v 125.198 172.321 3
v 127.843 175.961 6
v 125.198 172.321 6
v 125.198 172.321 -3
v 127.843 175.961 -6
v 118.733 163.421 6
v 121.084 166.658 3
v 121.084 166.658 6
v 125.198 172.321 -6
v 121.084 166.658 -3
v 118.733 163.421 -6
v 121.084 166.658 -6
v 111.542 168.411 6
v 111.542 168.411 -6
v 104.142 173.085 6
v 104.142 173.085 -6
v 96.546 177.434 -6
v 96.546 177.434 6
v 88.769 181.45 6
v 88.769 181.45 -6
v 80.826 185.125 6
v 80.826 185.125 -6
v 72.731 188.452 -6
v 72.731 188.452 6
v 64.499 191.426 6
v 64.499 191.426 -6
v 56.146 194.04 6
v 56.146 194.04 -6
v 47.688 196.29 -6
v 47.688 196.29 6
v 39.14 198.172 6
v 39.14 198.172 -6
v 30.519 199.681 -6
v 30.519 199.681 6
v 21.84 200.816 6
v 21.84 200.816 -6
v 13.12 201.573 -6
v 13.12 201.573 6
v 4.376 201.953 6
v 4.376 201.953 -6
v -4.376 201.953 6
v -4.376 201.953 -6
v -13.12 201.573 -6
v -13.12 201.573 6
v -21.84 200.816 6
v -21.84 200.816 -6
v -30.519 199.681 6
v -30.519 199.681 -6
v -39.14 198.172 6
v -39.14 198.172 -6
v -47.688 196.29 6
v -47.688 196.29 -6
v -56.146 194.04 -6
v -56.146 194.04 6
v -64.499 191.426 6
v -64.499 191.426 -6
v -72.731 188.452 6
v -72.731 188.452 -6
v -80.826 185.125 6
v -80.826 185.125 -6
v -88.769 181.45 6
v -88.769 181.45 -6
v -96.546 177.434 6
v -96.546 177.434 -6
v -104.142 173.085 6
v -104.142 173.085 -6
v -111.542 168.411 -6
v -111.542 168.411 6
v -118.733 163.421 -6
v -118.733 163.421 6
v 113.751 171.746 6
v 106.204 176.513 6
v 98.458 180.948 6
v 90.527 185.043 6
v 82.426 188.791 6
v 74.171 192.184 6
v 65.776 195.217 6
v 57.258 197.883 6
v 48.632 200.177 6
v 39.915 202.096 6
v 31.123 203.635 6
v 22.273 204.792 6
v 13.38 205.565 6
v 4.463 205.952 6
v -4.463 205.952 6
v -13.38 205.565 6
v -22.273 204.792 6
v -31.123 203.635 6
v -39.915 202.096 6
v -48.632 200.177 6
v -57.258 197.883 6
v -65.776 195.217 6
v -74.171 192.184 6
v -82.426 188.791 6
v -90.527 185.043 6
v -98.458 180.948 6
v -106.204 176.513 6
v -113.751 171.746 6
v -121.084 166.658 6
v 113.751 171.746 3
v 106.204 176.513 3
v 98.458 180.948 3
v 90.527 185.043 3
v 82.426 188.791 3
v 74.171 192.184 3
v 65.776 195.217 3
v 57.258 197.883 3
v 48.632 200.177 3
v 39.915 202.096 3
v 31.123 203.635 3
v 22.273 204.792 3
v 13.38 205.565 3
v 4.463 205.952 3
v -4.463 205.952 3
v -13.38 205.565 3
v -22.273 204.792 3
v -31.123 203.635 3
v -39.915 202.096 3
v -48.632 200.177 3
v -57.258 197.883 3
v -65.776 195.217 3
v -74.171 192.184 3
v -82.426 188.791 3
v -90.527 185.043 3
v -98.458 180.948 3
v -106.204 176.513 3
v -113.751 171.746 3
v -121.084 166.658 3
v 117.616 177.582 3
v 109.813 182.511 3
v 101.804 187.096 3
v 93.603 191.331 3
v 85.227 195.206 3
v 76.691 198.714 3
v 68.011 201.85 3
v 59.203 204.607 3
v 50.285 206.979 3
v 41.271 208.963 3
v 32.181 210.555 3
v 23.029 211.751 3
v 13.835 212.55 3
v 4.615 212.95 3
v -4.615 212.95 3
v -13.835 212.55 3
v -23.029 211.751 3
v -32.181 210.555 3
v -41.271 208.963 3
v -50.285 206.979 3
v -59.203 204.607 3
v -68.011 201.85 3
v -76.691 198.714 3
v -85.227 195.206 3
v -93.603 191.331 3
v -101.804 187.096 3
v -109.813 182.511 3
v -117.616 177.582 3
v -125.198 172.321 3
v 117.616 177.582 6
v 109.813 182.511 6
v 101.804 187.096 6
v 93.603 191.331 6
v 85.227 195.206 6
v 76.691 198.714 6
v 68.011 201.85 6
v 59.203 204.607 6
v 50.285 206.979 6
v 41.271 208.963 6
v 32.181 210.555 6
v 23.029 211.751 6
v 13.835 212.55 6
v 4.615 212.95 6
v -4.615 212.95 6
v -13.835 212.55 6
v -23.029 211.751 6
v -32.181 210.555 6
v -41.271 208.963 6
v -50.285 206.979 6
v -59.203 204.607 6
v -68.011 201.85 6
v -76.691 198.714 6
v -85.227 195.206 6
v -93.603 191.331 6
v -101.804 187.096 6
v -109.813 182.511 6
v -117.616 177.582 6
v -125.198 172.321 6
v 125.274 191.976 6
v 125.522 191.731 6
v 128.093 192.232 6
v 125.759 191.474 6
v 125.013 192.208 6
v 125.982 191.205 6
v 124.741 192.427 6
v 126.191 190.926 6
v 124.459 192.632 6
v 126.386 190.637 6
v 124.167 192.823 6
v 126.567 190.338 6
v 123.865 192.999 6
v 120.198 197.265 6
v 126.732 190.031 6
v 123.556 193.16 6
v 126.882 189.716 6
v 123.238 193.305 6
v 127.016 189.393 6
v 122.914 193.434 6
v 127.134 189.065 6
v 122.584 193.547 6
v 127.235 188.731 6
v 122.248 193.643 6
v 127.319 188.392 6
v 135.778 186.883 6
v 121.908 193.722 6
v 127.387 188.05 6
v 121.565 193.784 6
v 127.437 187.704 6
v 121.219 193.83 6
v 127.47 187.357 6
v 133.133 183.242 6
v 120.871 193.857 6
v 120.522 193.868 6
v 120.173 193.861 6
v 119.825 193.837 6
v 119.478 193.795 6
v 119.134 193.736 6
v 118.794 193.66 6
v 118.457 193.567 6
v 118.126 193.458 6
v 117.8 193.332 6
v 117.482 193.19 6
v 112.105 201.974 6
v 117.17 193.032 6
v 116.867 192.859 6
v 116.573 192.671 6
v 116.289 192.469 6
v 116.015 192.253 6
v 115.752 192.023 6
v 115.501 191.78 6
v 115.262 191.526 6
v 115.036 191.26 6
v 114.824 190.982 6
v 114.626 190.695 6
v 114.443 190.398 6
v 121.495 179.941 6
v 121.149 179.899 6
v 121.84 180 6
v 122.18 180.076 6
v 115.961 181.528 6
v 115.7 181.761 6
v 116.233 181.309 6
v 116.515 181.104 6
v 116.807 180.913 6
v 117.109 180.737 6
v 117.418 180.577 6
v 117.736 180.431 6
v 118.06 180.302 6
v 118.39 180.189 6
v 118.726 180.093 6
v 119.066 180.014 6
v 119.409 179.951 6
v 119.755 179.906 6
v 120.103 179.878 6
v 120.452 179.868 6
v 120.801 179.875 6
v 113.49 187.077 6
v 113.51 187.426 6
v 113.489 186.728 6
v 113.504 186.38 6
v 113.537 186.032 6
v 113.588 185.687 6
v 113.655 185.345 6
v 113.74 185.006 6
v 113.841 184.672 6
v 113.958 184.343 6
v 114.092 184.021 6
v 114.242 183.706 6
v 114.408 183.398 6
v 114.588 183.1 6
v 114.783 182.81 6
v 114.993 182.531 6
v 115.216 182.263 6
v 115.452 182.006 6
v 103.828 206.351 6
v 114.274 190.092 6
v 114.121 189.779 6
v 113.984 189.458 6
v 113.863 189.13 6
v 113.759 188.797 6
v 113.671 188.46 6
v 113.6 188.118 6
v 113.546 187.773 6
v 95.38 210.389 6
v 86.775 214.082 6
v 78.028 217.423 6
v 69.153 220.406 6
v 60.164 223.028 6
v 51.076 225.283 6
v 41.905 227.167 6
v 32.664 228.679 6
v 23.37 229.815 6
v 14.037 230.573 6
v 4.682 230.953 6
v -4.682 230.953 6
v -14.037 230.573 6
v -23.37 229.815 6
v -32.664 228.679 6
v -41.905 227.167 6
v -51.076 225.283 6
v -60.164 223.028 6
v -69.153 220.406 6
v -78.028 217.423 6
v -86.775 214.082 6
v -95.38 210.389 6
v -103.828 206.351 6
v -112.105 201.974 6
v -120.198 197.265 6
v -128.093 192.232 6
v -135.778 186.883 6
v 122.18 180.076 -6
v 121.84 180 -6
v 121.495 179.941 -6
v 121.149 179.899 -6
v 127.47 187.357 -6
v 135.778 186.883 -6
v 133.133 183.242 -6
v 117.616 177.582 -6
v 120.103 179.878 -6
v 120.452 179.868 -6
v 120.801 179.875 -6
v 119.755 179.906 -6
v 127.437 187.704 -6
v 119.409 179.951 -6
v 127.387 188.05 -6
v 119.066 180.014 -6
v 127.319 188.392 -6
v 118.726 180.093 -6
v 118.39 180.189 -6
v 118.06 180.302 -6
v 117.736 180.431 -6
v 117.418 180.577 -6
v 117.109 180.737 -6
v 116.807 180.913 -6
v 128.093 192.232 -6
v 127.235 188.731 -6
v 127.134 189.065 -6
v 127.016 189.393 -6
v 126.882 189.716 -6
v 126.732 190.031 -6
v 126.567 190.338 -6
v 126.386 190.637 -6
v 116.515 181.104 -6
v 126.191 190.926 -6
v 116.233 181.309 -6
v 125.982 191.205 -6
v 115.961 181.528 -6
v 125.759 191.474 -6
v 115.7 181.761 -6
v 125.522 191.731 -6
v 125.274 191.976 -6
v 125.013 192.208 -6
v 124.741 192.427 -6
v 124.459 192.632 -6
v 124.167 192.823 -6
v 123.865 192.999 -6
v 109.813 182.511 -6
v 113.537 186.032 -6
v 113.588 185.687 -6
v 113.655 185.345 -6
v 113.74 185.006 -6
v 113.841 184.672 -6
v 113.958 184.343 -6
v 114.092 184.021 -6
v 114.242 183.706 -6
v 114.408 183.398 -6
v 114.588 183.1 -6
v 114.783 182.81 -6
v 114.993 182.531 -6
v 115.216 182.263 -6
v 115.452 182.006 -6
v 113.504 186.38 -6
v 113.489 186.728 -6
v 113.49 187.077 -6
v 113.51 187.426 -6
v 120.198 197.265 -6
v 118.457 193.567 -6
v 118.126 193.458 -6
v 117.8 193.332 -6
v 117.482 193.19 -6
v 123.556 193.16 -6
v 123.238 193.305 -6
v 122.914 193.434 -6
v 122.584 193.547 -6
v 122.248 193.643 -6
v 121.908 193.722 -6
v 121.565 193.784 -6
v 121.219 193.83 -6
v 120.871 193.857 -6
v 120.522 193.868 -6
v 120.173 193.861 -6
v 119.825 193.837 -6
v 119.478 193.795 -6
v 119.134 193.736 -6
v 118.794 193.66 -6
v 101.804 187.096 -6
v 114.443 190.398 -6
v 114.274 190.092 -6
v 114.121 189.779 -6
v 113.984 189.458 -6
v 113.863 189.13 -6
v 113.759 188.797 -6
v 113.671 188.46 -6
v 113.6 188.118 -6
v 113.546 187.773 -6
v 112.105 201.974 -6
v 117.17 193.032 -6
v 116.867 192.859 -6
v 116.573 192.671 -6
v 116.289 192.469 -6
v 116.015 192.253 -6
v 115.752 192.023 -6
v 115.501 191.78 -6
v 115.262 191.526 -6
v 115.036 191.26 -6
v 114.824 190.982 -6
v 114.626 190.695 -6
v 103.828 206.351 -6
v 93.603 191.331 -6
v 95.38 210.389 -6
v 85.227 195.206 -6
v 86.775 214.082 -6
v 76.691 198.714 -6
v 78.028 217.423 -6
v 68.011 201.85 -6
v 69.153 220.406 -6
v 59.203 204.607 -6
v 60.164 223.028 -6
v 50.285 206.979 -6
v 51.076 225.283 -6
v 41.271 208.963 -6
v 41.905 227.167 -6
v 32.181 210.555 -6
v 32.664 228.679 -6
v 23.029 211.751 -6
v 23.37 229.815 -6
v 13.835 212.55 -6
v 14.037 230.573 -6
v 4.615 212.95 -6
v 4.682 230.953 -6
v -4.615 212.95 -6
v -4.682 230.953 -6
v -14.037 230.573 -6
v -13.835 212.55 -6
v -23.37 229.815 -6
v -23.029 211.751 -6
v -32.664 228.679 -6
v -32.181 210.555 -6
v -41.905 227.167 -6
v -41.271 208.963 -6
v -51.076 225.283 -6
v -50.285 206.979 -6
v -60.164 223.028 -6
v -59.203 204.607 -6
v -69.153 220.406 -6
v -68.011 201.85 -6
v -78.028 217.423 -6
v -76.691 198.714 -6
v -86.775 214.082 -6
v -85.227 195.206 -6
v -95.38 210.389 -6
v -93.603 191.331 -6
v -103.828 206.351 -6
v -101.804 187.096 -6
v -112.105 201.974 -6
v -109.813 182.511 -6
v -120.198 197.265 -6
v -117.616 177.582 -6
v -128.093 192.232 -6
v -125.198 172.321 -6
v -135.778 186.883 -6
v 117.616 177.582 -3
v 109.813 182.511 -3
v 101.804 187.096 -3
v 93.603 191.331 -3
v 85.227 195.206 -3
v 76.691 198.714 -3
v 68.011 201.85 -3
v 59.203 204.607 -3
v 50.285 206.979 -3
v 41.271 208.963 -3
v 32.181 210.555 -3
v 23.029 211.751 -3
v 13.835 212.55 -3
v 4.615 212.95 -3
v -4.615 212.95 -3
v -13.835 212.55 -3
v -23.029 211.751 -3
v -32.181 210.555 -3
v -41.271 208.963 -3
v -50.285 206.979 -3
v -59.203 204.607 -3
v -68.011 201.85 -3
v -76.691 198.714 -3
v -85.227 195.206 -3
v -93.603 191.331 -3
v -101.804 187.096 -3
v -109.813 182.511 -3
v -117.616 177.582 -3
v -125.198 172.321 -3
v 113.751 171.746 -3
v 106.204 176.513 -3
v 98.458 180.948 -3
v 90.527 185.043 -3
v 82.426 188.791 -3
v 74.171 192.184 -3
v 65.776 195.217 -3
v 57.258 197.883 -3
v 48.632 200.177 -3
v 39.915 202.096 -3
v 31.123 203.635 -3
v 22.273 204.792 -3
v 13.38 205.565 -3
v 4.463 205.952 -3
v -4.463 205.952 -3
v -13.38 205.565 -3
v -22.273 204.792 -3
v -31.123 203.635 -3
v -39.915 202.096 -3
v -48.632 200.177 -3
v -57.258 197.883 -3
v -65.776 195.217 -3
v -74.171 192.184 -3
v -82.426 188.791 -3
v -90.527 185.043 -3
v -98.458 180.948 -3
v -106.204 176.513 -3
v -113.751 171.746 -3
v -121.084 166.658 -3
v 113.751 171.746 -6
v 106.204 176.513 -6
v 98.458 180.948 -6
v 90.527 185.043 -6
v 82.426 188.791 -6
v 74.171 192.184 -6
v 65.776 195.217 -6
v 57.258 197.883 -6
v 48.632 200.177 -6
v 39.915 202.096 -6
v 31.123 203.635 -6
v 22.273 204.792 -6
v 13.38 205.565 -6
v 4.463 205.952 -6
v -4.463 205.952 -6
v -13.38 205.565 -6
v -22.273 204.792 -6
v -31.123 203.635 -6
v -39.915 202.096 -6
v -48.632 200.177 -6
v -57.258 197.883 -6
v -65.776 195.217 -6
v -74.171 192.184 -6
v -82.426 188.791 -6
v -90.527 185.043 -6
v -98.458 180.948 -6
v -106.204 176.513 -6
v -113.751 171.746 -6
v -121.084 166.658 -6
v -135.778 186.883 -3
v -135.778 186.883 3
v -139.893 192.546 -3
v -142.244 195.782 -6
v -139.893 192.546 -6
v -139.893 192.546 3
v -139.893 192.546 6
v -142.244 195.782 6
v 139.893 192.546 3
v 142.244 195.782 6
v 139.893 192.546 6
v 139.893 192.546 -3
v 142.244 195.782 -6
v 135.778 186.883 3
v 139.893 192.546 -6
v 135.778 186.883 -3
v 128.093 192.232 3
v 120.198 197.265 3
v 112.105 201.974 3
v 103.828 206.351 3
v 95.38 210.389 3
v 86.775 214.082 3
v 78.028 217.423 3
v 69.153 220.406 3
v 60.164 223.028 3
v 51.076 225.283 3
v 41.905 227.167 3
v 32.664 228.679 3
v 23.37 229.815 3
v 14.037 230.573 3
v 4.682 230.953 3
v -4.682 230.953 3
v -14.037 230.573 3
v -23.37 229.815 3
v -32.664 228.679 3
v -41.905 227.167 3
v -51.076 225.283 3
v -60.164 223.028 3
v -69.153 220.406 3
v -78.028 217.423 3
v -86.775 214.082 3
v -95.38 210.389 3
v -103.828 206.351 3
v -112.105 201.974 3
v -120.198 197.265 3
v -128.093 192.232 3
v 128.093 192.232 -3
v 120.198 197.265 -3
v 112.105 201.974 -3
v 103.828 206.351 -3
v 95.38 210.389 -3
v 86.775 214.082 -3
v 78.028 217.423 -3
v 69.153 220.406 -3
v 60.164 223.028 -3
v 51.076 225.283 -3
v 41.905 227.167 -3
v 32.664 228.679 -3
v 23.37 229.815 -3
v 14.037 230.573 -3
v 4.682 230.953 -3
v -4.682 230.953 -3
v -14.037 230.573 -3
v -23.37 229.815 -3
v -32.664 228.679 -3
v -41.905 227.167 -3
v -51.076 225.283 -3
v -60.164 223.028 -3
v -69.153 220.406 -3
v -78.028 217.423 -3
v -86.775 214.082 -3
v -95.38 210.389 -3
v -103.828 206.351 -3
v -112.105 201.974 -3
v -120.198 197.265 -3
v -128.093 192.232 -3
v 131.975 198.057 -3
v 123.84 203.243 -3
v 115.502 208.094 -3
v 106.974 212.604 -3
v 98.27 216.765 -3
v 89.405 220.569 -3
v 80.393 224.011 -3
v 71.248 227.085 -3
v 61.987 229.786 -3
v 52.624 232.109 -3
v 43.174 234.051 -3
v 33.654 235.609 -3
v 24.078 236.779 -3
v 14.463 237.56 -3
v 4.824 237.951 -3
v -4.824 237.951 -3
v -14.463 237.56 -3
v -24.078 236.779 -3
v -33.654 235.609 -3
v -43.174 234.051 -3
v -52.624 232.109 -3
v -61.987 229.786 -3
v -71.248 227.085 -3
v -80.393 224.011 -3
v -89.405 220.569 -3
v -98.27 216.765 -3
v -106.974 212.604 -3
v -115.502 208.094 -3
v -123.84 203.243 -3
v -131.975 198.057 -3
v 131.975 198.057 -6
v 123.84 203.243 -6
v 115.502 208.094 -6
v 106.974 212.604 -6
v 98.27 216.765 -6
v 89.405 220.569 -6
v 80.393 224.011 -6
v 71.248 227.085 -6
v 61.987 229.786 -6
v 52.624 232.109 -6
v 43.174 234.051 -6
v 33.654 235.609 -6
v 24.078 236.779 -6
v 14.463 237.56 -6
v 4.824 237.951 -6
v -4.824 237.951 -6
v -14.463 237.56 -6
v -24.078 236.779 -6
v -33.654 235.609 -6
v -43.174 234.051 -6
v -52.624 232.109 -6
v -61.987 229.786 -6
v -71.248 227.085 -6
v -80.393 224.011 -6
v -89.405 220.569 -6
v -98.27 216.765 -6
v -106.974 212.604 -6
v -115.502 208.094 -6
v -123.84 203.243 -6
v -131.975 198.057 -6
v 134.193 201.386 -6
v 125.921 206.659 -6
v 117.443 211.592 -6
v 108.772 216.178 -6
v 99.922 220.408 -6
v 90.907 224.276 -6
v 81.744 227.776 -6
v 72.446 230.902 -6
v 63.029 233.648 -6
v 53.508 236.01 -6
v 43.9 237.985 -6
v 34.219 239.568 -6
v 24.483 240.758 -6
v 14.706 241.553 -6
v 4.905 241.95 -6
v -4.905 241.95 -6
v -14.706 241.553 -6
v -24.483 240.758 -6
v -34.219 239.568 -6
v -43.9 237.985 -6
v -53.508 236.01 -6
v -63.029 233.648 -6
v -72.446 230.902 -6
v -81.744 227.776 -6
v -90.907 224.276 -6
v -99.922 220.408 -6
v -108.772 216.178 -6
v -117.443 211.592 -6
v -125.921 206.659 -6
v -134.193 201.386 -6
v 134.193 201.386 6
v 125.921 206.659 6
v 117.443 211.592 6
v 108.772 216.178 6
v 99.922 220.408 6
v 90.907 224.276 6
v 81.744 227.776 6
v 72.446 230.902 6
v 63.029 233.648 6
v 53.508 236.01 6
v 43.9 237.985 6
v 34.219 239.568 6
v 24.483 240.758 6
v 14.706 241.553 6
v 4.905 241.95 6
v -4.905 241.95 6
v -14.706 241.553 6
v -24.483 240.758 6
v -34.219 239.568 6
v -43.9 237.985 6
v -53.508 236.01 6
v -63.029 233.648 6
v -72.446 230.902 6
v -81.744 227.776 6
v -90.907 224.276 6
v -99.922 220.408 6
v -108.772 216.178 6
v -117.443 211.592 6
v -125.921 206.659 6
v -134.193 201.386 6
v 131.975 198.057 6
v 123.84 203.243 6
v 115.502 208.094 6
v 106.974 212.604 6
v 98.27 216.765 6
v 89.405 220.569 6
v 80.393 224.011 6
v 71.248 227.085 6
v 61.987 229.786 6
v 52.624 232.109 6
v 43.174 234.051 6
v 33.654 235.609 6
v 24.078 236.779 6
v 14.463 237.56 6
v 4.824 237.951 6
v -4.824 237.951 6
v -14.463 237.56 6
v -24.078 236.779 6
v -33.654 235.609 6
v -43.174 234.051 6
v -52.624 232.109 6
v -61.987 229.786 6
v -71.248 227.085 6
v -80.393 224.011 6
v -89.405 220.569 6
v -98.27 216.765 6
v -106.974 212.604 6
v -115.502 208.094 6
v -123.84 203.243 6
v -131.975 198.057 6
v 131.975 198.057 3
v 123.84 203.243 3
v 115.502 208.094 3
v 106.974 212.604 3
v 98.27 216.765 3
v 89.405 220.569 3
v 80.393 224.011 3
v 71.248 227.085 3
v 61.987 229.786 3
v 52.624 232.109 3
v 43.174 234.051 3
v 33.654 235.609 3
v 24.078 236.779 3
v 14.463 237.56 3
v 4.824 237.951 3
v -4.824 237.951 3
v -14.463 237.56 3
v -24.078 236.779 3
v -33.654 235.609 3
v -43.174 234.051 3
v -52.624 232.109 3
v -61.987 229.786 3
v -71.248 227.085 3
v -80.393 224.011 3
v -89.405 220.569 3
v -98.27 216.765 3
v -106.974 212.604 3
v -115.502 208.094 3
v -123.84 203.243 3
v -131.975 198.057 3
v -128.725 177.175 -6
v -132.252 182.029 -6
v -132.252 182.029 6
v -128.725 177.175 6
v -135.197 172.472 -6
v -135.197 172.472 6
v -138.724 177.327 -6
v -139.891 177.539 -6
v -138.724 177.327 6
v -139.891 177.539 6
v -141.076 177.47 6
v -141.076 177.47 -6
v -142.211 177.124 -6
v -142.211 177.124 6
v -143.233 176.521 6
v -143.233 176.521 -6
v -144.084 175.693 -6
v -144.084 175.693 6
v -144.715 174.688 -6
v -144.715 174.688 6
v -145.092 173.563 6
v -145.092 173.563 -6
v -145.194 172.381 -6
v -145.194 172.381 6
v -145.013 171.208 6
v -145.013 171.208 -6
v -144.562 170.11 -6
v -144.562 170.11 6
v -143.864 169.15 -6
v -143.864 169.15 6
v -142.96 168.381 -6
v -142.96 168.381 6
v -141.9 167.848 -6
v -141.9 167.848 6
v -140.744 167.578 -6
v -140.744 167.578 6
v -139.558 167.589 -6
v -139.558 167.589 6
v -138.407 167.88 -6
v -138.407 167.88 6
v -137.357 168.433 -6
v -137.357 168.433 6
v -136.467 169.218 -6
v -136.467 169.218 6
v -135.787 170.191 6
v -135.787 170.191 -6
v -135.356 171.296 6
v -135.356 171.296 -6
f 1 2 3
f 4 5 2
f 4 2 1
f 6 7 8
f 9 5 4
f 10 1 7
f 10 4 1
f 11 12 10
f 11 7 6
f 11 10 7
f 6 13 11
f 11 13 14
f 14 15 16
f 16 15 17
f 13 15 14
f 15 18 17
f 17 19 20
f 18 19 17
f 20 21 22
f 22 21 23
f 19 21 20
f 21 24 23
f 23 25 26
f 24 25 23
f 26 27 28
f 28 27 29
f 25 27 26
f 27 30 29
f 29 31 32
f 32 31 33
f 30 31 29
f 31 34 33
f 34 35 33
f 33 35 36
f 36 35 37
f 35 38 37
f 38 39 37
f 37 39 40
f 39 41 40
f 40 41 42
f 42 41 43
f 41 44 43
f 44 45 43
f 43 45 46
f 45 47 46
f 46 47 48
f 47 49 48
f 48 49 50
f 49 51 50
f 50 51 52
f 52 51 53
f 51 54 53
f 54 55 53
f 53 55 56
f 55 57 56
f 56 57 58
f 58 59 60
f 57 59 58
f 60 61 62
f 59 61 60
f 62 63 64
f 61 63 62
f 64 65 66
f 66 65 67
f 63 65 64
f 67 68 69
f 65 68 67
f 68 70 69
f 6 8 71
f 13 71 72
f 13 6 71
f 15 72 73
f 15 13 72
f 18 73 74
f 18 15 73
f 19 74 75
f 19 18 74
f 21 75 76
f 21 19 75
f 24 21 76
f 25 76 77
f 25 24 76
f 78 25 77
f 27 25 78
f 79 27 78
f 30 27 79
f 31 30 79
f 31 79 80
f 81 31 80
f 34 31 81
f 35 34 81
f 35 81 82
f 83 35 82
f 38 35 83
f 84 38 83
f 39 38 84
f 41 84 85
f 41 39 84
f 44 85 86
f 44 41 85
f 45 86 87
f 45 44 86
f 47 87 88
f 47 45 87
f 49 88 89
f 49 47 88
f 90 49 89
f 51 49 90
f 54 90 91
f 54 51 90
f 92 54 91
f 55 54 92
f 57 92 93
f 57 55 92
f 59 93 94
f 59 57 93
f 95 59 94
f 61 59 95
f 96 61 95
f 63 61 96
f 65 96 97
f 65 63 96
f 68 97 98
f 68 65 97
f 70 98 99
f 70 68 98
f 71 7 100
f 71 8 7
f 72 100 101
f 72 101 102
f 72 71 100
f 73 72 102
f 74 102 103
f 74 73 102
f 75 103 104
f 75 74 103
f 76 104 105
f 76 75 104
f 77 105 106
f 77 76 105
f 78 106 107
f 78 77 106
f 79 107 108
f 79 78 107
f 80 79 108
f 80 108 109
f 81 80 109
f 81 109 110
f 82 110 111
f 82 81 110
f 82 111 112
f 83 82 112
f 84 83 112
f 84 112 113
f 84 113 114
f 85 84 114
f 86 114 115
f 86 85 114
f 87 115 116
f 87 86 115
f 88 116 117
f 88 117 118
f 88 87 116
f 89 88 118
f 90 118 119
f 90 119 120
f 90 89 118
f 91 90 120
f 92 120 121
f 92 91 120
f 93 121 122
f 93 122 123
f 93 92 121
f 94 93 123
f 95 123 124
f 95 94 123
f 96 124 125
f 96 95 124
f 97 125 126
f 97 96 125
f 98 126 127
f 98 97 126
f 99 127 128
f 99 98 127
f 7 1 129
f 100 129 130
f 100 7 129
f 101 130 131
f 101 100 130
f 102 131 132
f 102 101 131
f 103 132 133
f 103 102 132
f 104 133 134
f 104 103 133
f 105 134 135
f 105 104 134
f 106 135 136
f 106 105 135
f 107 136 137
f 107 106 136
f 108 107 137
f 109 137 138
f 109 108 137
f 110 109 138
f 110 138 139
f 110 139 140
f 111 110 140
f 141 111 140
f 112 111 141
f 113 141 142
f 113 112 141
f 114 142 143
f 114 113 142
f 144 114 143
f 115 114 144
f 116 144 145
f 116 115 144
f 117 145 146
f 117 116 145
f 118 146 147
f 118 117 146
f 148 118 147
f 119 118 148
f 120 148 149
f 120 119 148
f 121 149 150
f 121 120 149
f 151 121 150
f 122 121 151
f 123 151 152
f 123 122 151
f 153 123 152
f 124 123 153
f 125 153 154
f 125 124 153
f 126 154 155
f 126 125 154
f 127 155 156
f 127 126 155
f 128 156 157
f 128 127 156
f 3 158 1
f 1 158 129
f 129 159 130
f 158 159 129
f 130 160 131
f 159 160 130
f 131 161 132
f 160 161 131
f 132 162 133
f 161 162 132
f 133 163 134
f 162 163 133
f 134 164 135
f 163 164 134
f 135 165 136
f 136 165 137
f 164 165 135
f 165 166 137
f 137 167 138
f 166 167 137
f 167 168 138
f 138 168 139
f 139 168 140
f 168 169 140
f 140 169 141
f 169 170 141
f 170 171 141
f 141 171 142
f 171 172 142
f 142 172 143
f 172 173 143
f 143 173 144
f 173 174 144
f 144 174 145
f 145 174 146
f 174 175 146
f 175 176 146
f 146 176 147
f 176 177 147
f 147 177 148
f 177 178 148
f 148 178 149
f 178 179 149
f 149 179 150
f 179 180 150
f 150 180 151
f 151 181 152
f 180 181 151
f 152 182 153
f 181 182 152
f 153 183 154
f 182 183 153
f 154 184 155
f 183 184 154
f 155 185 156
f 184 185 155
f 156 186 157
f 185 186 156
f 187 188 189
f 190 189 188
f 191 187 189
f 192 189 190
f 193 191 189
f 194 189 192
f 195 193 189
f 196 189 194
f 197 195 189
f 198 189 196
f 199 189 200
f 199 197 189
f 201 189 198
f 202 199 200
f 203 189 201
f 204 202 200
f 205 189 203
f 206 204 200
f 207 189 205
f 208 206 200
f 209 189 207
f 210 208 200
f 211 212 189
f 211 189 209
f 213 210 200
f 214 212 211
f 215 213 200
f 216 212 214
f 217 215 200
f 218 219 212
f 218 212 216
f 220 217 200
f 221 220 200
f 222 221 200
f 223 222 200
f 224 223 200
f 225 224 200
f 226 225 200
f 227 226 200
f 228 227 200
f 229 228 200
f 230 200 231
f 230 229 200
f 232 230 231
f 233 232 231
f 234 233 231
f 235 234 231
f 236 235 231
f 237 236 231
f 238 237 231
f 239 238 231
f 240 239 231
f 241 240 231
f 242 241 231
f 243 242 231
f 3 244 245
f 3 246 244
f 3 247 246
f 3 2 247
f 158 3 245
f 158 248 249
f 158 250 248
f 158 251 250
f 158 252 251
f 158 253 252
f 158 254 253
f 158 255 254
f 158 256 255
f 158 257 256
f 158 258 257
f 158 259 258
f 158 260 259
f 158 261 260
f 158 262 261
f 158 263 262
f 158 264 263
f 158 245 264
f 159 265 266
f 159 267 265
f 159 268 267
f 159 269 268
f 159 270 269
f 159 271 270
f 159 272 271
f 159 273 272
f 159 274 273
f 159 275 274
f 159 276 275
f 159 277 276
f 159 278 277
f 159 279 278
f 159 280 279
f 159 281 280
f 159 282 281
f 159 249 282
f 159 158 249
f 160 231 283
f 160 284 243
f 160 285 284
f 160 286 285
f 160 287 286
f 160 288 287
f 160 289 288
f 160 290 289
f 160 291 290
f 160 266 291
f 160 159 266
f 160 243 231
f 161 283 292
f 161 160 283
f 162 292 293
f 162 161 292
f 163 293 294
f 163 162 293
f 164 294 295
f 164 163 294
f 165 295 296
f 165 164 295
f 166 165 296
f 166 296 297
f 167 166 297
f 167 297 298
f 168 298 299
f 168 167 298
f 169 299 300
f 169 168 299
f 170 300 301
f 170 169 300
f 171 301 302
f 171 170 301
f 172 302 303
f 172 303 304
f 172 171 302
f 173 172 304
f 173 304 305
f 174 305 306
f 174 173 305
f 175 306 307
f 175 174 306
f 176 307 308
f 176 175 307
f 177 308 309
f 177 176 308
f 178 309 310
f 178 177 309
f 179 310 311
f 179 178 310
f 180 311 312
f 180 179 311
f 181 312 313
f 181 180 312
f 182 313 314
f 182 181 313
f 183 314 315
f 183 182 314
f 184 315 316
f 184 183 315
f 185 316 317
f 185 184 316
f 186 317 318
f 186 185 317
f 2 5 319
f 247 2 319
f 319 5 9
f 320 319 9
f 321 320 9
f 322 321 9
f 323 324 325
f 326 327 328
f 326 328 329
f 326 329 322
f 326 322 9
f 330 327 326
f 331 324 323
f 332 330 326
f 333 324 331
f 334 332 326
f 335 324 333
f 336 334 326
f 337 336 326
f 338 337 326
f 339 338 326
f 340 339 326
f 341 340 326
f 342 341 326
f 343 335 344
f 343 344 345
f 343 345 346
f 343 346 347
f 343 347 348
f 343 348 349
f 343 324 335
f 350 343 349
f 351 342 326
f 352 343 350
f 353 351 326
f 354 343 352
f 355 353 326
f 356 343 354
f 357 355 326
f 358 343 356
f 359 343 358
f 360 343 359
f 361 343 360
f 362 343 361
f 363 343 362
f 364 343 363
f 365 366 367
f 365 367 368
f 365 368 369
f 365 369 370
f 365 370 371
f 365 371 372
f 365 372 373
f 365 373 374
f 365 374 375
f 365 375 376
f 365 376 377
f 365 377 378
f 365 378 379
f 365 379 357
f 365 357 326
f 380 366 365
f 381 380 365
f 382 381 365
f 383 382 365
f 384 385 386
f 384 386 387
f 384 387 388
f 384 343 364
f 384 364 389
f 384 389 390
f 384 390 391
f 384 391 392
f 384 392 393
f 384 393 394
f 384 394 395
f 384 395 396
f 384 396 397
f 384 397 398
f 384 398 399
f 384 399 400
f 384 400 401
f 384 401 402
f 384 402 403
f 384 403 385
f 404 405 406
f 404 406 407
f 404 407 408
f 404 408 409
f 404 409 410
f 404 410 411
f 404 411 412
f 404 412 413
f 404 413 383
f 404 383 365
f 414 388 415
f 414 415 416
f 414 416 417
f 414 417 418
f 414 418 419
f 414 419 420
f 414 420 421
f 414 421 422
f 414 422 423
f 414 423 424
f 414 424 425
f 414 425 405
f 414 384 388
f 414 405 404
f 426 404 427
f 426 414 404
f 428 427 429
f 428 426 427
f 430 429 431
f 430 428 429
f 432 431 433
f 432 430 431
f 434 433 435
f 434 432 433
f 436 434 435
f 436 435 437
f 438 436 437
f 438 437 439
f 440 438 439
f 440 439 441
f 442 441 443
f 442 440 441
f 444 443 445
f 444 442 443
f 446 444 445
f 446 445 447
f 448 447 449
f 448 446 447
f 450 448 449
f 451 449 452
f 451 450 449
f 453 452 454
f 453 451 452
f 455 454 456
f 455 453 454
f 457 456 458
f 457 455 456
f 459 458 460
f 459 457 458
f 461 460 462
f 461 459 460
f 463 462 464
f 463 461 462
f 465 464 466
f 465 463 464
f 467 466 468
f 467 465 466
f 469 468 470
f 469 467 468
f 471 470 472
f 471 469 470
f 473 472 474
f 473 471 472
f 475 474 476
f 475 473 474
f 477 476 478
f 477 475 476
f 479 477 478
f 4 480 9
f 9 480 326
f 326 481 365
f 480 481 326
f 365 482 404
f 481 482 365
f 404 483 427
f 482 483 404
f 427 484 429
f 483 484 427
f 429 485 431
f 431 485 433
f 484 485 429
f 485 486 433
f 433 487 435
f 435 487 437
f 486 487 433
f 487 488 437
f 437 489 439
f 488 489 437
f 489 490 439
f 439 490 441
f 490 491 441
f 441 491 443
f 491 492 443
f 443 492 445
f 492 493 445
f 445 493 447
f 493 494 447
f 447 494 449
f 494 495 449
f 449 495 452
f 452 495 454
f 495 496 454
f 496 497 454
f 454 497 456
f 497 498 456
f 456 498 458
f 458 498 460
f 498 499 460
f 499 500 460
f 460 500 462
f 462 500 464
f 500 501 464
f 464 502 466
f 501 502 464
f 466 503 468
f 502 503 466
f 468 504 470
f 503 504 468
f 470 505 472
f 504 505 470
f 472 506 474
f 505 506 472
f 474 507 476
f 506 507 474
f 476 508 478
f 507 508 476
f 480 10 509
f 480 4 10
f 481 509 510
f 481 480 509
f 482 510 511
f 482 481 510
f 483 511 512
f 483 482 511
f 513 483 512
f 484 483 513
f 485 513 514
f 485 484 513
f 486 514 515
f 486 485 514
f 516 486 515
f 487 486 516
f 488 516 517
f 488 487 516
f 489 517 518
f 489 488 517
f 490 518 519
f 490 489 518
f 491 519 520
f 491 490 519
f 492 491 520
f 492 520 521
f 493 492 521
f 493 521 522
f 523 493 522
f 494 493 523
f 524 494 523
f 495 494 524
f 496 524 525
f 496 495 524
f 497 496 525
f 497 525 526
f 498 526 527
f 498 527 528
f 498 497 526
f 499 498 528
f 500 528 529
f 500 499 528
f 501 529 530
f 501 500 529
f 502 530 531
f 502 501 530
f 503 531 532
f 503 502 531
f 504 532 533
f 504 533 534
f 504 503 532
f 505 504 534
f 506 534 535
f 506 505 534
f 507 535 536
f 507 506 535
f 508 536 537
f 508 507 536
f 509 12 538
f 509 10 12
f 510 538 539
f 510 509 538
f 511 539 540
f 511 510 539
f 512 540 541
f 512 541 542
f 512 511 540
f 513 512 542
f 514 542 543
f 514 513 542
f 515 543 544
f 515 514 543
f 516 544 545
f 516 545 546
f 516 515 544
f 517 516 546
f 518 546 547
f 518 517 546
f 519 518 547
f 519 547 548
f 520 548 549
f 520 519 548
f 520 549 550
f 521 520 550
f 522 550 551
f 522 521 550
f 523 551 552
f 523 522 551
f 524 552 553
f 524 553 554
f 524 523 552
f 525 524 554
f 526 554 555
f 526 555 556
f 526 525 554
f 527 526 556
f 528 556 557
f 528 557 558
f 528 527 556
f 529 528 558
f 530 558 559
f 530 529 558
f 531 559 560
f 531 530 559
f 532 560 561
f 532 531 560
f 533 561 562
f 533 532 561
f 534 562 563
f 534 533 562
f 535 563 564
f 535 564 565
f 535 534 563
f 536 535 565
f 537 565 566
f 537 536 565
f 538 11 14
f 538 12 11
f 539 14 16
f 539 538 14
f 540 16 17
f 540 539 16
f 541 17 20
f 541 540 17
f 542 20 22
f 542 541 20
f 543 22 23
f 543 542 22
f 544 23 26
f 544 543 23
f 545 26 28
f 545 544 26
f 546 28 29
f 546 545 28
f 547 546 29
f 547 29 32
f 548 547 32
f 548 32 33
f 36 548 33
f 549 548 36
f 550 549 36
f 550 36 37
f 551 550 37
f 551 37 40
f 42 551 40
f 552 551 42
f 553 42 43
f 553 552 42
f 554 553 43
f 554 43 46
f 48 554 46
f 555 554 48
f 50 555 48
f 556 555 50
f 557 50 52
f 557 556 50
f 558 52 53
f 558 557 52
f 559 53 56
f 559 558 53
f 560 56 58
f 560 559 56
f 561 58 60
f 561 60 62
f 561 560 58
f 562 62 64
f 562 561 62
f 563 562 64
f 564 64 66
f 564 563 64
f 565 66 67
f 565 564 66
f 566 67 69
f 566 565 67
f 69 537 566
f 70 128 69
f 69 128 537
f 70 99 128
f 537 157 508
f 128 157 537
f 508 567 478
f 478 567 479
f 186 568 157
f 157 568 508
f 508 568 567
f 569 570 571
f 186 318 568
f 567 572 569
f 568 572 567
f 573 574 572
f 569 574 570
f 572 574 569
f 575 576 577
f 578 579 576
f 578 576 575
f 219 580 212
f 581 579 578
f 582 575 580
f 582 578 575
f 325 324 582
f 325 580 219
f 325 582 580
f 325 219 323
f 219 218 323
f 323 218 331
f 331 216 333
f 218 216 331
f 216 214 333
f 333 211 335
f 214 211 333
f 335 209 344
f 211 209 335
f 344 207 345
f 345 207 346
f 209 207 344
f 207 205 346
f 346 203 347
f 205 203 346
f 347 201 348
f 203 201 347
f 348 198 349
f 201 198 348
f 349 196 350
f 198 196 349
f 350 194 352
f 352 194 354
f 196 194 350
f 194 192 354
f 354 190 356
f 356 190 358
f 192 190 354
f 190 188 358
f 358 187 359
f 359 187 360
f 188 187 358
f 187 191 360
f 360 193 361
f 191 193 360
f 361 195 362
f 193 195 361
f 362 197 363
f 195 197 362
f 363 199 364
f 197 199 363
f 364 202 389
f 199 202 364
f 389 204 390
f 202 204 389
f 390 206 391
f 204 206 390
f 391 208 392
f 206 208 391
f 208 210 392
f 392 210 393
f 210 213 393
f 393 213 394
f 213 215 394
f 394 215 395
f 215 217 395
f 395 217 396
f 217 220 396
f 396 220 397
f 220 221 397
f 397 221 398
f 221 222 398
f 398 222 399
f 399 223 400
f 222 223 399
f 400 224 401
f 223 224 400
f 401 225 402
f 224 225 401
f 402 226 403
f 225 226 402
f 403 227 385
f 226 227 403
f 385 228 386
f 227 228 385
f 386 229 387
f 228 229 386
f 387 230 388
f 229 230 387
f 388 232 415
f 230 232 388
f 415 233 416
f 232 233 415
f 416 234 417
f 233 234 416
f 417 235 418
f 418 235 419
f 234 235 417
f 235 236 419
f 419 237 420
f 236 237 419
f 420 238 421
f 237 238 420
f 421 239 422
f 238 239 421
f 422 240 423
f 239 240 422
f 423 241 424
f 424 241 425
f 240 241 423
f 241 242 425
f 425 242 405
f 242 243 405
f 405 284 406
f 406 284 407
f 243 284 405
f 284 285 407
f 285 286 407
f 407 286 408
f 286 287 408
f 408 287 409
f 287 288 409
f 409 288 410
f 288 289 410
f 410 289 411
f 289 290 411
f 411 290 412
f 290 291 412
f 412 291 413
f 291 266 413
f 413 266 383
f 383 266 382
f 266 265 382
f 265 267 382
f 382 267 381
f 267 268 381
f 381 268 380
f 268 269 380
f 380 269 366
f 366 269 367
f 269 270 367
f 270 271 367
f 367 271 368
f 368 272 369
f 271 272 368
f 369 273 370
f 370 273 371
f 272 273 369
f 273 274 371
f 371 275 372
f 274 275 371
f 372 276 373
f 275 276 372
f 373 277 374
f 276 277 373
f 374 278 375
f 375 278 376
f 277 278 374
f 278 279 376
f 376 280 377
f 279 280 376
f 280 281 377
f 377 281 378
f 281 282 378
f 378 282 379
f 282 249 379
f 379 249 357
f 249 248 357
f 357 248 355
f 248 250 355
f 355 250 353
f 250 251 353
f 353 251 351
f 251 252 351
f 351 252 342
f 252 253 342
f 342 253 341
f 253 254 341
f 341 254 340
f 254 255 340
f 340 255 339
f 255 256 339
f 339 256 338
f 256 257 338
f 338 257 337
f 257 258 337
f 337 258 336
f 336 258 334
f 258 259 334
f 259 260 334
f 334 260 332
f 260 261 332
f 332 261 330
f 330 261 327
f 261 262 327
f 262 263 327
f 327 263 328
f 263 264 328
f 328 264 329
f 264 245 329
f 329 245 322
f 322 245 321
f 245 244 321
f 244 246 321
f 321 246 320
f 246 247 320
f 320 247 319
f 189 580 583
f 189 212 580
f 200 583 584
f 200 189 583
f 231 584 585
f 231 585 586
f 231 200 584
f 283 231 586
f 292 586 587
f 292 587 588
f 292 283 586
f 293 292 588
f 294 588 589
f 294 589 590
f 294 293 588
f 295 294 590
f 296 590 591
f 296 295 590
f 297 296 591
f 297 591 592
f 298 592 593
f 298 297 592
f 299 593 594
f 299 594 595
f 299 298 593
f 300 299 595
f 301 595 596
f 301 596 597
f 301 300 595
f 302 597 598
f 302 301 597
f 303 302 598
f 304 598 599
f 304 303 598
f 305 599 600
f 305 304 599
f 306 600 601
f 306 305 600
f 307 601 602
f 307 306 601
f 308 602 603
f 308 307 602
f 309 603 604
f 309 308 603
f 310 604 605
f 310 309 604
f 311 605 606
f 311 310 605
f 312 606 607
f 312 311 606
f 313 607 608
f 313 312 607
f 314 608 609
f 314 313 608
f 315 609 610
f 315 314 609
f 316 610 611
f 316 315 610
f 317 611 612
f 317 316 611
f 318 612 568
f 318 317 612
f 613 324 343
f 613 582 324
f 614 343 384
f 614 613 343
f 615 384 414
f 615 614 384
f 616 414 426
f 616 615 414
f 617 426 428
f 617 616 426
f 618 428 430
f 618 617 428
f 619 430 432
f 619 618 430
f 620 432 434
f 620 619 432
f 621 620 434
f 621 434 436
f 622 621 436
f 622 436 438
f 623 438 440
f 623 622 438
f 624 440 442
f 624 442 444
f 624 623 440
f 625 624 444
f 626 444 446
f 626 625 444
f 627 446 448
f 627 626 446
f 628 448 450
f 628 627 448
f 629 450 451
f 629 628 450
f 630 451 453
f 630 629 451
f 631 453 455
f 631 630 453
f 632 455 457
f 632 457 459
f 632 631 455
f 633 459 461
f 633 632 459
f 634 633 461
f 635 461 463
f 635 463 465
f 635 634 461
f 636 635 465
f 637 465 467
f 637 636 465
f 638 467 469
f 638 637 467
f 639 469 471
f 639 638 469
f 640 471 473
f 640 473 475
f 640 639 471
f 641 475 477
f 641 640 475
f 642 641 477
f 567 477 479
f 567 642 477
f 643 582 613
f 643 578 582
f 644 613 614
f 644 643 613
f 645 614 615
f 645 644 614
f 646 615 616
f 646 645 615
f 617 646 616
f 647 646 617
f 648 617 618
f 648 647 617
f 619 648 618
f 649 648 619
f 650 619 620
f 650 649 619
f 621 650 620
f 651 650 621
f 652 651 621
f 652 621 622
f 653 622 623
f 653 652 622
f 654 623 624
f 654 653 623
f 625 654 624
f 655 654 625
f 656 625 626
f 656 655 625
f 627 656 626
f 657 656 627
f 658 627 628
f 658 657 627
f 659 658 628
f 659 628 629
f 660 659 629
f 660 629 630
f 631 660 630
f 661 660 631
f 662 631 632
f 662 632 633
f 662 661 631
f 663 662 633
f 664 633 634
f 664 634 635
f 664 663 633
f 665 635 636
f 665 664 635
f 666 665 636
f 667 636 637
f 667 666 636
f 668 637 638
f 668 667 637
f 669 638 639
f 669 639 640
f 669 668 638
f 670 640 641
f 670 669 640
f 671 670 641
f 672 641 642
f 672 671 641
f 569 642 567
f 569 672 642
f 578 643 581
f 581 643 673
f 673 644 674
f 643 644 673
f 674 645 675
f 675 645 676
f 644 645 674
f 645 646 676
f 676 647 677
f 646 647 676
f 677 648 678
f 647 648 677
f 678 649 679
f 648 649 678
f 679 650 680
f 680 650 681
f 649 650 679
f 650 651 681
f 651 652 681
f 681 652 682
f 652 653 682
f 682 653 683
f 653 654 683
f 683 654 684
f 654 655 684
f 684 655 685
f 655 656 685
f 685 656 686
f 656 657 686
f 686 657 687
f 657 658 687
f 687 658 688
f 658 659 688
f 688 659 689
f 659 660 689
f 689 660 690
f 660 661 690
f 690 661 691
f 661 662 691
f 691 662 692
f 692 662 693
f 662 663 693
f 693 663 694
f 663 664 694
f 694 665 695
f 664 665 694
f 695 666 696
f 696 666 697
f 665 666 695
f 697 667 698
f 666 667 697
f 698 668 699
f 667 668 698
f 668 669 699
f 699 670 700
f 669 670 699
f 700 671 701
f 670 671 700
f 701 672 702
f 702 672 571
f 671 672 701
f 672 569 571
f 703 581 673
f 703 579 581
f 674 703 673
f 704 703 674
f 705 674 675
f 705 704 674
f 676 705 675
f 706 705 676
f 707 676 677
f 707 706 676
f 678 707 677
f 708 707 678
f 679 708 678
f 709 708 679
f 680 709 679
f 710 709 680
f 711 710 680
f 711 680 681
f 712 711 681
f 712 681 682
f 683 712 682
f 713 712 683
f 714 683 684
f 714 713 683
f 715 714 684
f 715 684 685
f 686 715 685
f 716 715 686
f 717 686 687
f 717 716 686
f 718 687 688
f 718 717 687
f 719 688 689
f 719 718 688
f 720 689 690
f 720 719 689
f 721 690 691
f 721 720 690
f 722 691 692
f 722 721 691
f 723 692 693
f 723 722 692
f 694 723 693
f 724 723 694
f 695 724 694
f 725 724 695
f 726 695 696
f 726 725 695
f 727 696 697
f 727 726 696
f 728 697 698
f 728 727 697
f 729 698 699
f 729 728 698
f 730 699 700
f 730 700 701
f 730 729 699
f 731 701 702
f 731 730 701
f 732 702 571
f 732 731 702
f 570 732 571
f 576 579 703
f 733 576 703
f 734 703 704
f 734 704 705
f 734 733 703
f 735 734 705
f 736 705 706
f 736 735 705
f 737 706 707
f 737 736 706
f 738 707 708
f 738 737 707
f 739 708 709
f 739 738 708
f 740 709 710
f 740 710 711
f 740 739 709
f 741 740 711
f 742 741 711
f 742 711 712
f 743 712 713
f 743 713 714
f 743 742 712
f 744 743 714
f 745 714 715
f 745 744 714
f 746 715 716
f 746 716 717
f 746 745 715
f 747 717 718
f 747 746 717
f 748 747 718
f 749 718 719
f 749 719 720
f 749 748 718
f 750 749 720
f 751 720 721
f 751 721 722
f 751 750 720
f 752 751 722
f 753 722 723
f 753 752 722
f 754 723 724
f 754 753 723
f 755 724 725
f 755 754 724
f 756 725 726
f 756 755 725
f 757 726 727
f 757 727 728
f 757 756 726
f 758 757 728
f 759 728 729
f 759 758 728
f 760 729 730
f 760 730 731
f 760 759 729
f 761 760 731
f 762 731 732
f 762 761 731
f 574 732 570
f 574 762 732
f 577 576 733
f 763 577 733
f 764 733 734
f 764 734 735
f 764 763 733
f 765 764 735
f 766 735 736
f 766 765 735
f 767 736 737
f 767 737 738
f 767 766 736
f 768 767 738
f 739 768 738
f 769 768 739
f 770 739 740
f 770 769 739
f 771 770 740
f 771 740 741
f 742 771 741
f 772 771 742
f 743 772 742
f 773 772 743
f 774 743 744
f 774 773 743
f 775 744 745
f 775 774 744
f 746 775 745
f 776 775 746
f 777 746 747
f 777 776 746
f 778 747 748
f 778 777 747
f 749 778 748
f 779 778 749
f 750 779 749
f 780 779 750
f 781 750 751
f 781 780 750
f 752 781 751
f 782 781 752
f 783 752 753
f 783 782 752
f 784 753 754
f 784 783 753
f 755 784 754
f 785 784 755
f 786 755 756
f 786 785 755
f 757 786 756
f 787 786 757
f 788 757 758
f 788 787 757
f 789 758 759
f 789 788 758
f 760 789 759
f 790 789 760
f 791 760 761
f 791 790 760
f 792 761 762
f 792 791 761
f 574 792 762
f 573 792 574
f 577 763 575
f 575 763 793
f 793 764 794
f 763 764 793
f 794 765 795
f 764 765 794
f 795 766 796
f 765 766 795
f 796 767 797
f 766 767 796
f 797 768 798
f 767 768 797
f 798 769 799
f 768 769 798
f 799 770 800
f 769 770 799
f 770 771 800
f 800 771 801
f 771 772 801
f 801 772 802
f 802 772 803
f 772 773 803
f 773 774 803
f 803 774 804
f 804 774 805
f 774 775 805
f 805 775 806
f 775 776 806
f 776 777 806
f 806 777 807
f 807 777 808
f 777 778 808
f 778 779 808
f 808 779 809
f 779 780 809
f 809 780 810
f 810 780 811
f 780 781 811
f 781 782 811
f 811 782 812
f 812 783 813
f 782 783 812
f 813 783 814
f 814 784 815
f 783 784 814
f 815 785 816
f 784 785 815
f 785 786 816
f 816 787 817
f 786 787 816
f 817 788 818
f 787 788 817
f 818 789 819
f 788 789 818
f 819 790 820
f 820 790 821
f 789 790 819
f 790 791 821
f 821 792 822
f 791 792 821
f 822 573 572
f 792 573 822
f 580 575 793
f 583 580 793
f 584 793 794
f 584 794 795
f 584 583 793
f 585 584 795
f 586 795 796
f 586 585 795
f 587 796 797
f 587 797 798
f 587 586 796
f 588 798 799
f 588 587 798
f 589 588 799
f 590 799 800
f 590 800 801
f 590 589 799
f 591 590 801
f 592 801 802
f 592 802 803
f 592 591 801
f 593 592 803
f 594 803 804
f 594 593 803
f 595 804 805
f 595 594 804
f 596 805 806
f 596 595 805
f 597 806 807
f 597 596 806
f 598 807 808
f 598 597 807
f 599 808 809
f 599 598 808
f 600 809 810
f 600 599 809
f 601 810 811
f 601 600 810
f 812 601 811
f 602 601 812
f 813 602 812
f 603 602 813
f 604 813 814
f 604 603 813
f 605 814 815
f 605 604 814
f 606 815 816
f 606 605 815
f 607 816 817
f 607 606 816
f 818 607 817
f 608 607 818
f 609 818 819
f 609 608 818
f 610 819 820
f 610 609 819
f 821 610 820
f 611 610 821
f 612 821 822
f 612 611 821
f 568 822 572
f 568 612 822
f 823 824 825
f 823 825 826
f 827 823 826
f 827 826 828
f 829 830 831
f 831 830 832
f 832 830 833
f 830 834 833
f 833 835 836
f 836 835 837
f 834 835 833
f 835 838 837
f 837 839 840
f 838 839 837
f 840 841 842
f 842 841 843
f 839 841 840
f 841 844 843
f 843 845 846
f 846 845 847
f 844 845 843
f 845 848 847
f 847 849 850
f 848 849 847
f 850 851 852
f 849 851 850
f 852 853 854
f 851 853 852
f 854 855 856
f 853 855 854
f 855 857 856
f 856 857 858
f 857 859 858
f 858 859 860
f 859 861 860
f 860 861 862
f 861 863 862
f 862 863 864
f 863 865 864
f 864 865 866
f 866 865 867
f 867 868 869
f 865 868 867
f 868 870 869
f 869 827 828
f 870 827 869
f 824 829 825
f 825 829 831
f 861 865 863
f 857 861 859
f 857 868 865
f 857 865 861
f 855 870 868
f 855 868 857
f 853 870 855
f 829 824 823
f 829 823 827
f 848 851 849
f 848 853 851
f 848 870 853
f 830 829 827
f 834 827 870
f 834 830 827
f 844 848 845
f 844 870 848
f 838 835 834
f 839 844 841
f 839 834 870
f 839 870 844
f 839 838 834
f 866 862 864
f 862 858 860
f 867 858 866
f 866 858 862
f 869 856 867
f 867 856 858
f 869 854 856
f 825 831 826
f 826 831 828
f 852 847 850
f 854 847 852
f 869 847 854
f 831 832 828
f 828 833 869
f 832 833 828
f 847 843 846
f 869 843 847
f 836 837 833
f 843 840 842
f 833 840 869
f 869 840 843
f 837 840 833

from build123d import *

# Parameters (mm, degrees)
POCKET_DEPTH = 12.001
PAD_DEPTH    = 6


with BuildPart() as body:
    # AdditivePipe: sweep along a path in Sketch
    with BuildLine(Plane.XY) as additivepipe_path:
        ThreePointArc((130.488326, 179.601773), (0, 222), (-130.488326, 179.601773))
    # Sketch002 (on DatumPlane) → AdditivePipe (sweep)
    with BuildSketch(Plane(origin=(-130.488326, 179.601773, 0), x_dir=(-0.587785, 0.809017, 0), z_dir=(0.809017, 0.587785, 0))):
        Polygon((-20, 6), (-20, -6), (-16, -6), (-16, -3), (-9, -3), (-9, -6), (9, -6), (9, -3), (16, -3), (16, -6), (20, -6), (20, 6), (16, 6), (16, 3), (9, 3), (9, 6), (-9, 6), (-9, 3), (-16, 3), (-16, 6), align=None)
    sweep(path=additivepipe_path.line)

    # Sketch004 (on Face18 of AdditivePipe) → Pocket (cut, through all)
    with BuildSketch(Plane(origin=(-130.488326, 179.601773, 6), x_dir=(0.587785, -0.809017, 0), z_dir=(0, 0, 1))):
        with BuildLine():
            Line((152.007651, 215.414301), (145.350255, 213.251182))
            ThreePointArc((145.350255, 213.251182), (134.983964, 205.15139), (148.131408, 204.691673))
            Line((154.788804, 206.854792), (148.131408, 204.691673))
            Line((152.007651, 215.414301), (154.788804, 206.854792))
        make_face()
    extrude(amount=-POCKET_DEPTH, mode=Mode.SUBTRACT)


with BuildPart() as body001:
    # Sketch005 → Pad (new body, symmetric)
    with BuildSketch(Plane.XY):
        with BuildLine():
            Line((-132.251682, 182.028824), (-128.72497, 177.174722))
            Line((-128.72497, 177.174722), (-135.197106, 172.47244))
            ThreePointArc((-138.723818, 177.326542), (-144.241615, 169.609423), (-135.197106, 172.47244))
            Line((-132.251682, 182.028824), (-138.723818, 177.326542))
        make_face()
    extrude(amount=PAD_DEPTH, both=True)


solid = Compound([body.part, body001.part])
